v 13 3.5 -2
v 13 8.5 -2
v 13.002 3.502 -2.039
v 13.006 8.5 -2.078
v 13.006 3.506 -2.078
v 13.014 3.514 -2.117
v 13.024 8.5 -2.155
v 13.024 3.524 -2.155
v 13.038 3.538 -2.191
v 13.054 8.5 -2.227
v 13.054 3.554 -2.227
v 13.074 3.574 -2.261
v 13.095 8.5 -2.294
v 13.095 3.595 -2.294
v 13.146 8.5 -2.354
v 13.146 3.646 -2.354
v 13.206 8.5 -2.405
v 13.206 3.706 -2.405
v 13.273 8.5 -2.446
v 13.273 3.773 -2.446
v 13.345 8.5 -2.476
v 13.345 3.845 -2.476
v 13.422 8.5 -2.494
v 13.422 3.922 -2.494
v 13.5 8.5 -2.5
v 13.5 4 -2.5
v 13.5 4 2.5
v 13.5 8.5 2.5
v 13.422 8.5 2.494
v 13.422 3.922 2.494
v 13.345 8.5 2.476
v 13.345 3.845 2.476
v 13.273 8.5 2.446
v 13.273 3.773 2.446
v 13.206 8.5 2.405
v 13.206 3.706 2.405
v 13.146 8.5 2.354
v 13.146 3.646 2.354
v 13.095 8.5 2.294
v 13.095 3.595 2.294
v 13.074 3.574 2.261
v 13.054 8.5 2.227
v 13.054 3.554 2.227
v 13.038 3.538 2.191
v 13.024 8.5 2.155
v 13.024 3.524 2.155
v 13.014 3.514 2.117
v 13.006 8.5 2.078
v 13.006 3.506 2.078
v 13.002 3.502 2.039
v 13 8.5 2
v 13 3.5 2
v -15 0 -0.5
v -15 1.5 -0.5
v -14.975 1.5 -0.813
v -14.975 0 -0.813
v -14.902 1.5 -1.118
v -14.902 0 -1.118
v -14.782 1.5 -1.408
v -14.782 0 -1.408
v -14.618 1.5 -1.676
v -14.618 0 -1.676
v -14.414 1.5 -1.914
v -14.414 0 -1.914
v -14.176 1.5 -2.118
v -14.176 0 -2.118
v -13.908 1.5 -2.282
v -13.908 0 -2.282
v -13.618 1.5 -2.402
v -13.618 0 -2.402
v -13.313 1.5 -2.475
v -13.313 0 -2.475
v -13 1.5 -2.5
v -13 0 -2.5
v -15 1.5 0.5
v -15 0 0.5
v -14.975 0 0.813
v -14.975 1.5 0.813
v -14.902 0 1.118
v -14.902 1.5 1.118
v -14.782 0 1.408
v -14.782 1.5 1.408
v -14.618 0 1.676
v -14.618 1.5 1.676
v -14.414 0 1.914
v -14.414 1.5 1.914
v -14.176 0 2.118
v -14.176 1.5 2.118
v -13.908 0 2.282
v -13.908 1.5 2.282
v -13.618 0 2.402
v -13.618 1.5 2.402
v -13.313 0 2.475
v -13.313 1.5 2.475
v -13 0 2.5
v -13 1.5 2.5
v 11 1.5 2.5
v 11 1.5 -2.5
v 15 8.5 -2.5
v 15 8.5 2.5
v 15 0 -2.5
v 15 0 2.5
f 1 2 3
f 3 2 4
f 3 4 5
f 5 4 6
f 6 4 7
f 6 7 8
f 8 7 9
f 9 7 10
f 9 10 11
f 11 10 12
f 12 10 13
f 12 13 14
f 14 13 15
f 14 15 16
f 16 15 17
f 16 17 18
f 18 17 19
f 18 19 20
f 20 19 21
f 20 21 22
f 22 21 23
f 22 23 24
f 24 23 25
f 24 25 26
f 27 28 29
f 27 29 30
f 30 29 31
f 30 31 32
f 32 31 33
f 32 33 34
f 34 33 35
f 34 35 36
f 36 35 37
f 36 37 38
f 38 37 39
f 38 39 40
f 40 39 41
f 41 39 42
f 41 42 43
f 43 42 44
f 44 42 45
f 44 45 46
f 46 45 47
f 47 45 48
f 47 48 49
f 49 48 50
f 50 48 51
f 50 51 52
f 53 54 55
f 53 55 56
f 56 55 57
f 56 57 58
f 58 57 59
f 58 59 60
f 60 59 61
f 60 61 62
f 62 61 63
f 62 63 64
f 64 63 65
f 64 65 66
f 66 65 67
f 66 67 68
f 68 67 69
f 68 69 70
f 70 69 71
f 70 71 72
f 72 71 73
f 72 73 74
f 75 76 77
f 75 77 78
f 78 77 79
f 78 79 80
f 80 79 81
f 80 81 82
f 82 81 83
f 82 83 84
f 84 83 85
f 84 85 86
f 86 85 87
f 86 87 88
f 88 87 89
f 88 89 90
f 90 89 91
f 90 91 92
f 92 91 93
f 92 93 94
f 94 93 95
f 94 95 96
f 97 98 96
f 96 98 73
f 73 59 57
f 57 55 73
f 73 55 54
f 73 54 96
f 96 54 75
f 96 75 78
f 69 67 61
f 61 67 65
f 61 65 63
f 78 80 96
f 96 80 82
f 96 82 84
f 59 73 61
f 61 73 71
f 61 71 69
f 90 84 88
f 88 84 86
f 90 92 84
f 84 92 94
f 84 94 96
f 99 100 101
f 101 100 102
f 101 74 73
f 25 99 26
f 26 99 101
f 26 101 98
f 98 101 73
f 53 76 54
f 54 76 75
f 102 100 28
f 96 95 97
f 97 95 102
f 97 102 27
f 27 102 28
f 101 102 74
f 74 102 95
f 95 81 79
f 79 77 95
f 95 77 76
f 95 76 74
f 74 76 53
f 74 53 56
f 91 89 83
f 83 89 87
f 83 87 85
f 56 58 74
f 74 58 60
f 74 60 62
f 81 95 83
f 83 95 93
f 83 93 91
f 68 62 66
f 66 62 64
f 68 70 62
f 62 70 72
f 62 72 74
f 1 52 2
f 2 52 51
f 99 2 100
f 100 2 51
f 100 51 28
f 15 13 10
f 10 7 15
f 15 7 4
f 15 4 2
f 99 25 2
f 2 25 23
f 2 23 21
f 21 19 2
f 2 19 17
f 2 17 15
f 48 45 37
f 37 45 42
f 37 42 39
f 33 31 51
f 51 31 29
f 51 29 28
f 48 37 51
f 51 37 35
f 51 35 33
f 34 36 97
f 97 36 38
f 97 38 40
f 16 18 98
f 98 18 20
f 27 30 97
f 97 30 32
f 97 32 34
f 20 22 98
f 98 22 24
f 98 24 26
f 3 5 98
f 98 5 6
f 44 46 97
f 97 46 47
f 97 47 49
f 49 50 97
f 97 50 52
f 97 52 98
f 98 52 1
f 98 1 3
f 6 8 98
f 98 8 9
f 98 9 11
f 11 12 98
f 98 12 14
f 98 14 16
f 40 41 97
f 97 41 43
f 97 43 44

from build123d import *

# Parameters (mm, degrees)
ESBO_O1_W                = 30
ESBO_O1_H                = 5
RESSALTO_EXTRUS_O1_DEPTH = 1.5
ESBO_O2_W                = 2
ESBO_O2_H                = 5
RESSALTO_EXTRUS_O2_DEPTH = 7
FILETE1_R                = 2
FILETE2_R                = 2
CHANFRO1_SIZE            = 2
FILETE4_R                = 0.5
FILETE5_R                = 0.5


with BuildPart() as part:
    # Esboço1 → Ressalto-extrusão1 (new body)
    with BuildSketch(Plane(origin=(0, 0, 0), x_dir=(1, 0, 0), z_dir=(0, 1, 0))):
        Rectangle(ESBO_O1_W, ESBO_O1_H)
    extrude(amount=RESSALTO_EXTRUS_O1_DEPTH)

    # Esboço2 → Ressalto-extrusão2 (add)
    with BuildSketch(Plane(origin=(0, 1.5, 0), x_dir=(1, 0, 0), z_dir=(0, 1, 0))):
        with Locations((14, 0)):
            Rectangle(ESBO_O2_W, ESBO_O2_H)
    extrude(amount=RESSALTO_EXTRUS_O2_DEPTH)

    # Filete1
    filete1_edges = [part.edges().sort_by_distance(p)[0] for p in [
        (-15, 0.75, 2.5),
    ]]
    fillet(filete1_edges, radius=FILETE1_R)

    # Filete2
    filete2_edges = [part.edges().sort_by_distance(p)[0] for p in [
        (-15, 0.75, -2.5),
    ]]
    fillet(filete2_edges, radius=FILETE2_R)

    # Chanfro1
    chanfro1_edges = [part.edges().sort_by_distance(p)[0] for p in [
        (13, 1.5, 0),
    ]]
    chamfer(chanfro1_edges, length=CHANFRO1_SIZE)

    # Filete4
    filete4_edges = [part.edges().sort_by_distance(p)[0] for p in [
        (13, 6, 2.5),
    ]]
    fillet(filete4_edges, radius=FILETE4_R)

    # Filete5
    filete5_edges = [part.edges().sort_by_distance(p)[0] for p in [
        (13, 6, -2.5),
    ]]
    fillet(filete5_edges, radius=FILETE5_R)


solid = part.part
